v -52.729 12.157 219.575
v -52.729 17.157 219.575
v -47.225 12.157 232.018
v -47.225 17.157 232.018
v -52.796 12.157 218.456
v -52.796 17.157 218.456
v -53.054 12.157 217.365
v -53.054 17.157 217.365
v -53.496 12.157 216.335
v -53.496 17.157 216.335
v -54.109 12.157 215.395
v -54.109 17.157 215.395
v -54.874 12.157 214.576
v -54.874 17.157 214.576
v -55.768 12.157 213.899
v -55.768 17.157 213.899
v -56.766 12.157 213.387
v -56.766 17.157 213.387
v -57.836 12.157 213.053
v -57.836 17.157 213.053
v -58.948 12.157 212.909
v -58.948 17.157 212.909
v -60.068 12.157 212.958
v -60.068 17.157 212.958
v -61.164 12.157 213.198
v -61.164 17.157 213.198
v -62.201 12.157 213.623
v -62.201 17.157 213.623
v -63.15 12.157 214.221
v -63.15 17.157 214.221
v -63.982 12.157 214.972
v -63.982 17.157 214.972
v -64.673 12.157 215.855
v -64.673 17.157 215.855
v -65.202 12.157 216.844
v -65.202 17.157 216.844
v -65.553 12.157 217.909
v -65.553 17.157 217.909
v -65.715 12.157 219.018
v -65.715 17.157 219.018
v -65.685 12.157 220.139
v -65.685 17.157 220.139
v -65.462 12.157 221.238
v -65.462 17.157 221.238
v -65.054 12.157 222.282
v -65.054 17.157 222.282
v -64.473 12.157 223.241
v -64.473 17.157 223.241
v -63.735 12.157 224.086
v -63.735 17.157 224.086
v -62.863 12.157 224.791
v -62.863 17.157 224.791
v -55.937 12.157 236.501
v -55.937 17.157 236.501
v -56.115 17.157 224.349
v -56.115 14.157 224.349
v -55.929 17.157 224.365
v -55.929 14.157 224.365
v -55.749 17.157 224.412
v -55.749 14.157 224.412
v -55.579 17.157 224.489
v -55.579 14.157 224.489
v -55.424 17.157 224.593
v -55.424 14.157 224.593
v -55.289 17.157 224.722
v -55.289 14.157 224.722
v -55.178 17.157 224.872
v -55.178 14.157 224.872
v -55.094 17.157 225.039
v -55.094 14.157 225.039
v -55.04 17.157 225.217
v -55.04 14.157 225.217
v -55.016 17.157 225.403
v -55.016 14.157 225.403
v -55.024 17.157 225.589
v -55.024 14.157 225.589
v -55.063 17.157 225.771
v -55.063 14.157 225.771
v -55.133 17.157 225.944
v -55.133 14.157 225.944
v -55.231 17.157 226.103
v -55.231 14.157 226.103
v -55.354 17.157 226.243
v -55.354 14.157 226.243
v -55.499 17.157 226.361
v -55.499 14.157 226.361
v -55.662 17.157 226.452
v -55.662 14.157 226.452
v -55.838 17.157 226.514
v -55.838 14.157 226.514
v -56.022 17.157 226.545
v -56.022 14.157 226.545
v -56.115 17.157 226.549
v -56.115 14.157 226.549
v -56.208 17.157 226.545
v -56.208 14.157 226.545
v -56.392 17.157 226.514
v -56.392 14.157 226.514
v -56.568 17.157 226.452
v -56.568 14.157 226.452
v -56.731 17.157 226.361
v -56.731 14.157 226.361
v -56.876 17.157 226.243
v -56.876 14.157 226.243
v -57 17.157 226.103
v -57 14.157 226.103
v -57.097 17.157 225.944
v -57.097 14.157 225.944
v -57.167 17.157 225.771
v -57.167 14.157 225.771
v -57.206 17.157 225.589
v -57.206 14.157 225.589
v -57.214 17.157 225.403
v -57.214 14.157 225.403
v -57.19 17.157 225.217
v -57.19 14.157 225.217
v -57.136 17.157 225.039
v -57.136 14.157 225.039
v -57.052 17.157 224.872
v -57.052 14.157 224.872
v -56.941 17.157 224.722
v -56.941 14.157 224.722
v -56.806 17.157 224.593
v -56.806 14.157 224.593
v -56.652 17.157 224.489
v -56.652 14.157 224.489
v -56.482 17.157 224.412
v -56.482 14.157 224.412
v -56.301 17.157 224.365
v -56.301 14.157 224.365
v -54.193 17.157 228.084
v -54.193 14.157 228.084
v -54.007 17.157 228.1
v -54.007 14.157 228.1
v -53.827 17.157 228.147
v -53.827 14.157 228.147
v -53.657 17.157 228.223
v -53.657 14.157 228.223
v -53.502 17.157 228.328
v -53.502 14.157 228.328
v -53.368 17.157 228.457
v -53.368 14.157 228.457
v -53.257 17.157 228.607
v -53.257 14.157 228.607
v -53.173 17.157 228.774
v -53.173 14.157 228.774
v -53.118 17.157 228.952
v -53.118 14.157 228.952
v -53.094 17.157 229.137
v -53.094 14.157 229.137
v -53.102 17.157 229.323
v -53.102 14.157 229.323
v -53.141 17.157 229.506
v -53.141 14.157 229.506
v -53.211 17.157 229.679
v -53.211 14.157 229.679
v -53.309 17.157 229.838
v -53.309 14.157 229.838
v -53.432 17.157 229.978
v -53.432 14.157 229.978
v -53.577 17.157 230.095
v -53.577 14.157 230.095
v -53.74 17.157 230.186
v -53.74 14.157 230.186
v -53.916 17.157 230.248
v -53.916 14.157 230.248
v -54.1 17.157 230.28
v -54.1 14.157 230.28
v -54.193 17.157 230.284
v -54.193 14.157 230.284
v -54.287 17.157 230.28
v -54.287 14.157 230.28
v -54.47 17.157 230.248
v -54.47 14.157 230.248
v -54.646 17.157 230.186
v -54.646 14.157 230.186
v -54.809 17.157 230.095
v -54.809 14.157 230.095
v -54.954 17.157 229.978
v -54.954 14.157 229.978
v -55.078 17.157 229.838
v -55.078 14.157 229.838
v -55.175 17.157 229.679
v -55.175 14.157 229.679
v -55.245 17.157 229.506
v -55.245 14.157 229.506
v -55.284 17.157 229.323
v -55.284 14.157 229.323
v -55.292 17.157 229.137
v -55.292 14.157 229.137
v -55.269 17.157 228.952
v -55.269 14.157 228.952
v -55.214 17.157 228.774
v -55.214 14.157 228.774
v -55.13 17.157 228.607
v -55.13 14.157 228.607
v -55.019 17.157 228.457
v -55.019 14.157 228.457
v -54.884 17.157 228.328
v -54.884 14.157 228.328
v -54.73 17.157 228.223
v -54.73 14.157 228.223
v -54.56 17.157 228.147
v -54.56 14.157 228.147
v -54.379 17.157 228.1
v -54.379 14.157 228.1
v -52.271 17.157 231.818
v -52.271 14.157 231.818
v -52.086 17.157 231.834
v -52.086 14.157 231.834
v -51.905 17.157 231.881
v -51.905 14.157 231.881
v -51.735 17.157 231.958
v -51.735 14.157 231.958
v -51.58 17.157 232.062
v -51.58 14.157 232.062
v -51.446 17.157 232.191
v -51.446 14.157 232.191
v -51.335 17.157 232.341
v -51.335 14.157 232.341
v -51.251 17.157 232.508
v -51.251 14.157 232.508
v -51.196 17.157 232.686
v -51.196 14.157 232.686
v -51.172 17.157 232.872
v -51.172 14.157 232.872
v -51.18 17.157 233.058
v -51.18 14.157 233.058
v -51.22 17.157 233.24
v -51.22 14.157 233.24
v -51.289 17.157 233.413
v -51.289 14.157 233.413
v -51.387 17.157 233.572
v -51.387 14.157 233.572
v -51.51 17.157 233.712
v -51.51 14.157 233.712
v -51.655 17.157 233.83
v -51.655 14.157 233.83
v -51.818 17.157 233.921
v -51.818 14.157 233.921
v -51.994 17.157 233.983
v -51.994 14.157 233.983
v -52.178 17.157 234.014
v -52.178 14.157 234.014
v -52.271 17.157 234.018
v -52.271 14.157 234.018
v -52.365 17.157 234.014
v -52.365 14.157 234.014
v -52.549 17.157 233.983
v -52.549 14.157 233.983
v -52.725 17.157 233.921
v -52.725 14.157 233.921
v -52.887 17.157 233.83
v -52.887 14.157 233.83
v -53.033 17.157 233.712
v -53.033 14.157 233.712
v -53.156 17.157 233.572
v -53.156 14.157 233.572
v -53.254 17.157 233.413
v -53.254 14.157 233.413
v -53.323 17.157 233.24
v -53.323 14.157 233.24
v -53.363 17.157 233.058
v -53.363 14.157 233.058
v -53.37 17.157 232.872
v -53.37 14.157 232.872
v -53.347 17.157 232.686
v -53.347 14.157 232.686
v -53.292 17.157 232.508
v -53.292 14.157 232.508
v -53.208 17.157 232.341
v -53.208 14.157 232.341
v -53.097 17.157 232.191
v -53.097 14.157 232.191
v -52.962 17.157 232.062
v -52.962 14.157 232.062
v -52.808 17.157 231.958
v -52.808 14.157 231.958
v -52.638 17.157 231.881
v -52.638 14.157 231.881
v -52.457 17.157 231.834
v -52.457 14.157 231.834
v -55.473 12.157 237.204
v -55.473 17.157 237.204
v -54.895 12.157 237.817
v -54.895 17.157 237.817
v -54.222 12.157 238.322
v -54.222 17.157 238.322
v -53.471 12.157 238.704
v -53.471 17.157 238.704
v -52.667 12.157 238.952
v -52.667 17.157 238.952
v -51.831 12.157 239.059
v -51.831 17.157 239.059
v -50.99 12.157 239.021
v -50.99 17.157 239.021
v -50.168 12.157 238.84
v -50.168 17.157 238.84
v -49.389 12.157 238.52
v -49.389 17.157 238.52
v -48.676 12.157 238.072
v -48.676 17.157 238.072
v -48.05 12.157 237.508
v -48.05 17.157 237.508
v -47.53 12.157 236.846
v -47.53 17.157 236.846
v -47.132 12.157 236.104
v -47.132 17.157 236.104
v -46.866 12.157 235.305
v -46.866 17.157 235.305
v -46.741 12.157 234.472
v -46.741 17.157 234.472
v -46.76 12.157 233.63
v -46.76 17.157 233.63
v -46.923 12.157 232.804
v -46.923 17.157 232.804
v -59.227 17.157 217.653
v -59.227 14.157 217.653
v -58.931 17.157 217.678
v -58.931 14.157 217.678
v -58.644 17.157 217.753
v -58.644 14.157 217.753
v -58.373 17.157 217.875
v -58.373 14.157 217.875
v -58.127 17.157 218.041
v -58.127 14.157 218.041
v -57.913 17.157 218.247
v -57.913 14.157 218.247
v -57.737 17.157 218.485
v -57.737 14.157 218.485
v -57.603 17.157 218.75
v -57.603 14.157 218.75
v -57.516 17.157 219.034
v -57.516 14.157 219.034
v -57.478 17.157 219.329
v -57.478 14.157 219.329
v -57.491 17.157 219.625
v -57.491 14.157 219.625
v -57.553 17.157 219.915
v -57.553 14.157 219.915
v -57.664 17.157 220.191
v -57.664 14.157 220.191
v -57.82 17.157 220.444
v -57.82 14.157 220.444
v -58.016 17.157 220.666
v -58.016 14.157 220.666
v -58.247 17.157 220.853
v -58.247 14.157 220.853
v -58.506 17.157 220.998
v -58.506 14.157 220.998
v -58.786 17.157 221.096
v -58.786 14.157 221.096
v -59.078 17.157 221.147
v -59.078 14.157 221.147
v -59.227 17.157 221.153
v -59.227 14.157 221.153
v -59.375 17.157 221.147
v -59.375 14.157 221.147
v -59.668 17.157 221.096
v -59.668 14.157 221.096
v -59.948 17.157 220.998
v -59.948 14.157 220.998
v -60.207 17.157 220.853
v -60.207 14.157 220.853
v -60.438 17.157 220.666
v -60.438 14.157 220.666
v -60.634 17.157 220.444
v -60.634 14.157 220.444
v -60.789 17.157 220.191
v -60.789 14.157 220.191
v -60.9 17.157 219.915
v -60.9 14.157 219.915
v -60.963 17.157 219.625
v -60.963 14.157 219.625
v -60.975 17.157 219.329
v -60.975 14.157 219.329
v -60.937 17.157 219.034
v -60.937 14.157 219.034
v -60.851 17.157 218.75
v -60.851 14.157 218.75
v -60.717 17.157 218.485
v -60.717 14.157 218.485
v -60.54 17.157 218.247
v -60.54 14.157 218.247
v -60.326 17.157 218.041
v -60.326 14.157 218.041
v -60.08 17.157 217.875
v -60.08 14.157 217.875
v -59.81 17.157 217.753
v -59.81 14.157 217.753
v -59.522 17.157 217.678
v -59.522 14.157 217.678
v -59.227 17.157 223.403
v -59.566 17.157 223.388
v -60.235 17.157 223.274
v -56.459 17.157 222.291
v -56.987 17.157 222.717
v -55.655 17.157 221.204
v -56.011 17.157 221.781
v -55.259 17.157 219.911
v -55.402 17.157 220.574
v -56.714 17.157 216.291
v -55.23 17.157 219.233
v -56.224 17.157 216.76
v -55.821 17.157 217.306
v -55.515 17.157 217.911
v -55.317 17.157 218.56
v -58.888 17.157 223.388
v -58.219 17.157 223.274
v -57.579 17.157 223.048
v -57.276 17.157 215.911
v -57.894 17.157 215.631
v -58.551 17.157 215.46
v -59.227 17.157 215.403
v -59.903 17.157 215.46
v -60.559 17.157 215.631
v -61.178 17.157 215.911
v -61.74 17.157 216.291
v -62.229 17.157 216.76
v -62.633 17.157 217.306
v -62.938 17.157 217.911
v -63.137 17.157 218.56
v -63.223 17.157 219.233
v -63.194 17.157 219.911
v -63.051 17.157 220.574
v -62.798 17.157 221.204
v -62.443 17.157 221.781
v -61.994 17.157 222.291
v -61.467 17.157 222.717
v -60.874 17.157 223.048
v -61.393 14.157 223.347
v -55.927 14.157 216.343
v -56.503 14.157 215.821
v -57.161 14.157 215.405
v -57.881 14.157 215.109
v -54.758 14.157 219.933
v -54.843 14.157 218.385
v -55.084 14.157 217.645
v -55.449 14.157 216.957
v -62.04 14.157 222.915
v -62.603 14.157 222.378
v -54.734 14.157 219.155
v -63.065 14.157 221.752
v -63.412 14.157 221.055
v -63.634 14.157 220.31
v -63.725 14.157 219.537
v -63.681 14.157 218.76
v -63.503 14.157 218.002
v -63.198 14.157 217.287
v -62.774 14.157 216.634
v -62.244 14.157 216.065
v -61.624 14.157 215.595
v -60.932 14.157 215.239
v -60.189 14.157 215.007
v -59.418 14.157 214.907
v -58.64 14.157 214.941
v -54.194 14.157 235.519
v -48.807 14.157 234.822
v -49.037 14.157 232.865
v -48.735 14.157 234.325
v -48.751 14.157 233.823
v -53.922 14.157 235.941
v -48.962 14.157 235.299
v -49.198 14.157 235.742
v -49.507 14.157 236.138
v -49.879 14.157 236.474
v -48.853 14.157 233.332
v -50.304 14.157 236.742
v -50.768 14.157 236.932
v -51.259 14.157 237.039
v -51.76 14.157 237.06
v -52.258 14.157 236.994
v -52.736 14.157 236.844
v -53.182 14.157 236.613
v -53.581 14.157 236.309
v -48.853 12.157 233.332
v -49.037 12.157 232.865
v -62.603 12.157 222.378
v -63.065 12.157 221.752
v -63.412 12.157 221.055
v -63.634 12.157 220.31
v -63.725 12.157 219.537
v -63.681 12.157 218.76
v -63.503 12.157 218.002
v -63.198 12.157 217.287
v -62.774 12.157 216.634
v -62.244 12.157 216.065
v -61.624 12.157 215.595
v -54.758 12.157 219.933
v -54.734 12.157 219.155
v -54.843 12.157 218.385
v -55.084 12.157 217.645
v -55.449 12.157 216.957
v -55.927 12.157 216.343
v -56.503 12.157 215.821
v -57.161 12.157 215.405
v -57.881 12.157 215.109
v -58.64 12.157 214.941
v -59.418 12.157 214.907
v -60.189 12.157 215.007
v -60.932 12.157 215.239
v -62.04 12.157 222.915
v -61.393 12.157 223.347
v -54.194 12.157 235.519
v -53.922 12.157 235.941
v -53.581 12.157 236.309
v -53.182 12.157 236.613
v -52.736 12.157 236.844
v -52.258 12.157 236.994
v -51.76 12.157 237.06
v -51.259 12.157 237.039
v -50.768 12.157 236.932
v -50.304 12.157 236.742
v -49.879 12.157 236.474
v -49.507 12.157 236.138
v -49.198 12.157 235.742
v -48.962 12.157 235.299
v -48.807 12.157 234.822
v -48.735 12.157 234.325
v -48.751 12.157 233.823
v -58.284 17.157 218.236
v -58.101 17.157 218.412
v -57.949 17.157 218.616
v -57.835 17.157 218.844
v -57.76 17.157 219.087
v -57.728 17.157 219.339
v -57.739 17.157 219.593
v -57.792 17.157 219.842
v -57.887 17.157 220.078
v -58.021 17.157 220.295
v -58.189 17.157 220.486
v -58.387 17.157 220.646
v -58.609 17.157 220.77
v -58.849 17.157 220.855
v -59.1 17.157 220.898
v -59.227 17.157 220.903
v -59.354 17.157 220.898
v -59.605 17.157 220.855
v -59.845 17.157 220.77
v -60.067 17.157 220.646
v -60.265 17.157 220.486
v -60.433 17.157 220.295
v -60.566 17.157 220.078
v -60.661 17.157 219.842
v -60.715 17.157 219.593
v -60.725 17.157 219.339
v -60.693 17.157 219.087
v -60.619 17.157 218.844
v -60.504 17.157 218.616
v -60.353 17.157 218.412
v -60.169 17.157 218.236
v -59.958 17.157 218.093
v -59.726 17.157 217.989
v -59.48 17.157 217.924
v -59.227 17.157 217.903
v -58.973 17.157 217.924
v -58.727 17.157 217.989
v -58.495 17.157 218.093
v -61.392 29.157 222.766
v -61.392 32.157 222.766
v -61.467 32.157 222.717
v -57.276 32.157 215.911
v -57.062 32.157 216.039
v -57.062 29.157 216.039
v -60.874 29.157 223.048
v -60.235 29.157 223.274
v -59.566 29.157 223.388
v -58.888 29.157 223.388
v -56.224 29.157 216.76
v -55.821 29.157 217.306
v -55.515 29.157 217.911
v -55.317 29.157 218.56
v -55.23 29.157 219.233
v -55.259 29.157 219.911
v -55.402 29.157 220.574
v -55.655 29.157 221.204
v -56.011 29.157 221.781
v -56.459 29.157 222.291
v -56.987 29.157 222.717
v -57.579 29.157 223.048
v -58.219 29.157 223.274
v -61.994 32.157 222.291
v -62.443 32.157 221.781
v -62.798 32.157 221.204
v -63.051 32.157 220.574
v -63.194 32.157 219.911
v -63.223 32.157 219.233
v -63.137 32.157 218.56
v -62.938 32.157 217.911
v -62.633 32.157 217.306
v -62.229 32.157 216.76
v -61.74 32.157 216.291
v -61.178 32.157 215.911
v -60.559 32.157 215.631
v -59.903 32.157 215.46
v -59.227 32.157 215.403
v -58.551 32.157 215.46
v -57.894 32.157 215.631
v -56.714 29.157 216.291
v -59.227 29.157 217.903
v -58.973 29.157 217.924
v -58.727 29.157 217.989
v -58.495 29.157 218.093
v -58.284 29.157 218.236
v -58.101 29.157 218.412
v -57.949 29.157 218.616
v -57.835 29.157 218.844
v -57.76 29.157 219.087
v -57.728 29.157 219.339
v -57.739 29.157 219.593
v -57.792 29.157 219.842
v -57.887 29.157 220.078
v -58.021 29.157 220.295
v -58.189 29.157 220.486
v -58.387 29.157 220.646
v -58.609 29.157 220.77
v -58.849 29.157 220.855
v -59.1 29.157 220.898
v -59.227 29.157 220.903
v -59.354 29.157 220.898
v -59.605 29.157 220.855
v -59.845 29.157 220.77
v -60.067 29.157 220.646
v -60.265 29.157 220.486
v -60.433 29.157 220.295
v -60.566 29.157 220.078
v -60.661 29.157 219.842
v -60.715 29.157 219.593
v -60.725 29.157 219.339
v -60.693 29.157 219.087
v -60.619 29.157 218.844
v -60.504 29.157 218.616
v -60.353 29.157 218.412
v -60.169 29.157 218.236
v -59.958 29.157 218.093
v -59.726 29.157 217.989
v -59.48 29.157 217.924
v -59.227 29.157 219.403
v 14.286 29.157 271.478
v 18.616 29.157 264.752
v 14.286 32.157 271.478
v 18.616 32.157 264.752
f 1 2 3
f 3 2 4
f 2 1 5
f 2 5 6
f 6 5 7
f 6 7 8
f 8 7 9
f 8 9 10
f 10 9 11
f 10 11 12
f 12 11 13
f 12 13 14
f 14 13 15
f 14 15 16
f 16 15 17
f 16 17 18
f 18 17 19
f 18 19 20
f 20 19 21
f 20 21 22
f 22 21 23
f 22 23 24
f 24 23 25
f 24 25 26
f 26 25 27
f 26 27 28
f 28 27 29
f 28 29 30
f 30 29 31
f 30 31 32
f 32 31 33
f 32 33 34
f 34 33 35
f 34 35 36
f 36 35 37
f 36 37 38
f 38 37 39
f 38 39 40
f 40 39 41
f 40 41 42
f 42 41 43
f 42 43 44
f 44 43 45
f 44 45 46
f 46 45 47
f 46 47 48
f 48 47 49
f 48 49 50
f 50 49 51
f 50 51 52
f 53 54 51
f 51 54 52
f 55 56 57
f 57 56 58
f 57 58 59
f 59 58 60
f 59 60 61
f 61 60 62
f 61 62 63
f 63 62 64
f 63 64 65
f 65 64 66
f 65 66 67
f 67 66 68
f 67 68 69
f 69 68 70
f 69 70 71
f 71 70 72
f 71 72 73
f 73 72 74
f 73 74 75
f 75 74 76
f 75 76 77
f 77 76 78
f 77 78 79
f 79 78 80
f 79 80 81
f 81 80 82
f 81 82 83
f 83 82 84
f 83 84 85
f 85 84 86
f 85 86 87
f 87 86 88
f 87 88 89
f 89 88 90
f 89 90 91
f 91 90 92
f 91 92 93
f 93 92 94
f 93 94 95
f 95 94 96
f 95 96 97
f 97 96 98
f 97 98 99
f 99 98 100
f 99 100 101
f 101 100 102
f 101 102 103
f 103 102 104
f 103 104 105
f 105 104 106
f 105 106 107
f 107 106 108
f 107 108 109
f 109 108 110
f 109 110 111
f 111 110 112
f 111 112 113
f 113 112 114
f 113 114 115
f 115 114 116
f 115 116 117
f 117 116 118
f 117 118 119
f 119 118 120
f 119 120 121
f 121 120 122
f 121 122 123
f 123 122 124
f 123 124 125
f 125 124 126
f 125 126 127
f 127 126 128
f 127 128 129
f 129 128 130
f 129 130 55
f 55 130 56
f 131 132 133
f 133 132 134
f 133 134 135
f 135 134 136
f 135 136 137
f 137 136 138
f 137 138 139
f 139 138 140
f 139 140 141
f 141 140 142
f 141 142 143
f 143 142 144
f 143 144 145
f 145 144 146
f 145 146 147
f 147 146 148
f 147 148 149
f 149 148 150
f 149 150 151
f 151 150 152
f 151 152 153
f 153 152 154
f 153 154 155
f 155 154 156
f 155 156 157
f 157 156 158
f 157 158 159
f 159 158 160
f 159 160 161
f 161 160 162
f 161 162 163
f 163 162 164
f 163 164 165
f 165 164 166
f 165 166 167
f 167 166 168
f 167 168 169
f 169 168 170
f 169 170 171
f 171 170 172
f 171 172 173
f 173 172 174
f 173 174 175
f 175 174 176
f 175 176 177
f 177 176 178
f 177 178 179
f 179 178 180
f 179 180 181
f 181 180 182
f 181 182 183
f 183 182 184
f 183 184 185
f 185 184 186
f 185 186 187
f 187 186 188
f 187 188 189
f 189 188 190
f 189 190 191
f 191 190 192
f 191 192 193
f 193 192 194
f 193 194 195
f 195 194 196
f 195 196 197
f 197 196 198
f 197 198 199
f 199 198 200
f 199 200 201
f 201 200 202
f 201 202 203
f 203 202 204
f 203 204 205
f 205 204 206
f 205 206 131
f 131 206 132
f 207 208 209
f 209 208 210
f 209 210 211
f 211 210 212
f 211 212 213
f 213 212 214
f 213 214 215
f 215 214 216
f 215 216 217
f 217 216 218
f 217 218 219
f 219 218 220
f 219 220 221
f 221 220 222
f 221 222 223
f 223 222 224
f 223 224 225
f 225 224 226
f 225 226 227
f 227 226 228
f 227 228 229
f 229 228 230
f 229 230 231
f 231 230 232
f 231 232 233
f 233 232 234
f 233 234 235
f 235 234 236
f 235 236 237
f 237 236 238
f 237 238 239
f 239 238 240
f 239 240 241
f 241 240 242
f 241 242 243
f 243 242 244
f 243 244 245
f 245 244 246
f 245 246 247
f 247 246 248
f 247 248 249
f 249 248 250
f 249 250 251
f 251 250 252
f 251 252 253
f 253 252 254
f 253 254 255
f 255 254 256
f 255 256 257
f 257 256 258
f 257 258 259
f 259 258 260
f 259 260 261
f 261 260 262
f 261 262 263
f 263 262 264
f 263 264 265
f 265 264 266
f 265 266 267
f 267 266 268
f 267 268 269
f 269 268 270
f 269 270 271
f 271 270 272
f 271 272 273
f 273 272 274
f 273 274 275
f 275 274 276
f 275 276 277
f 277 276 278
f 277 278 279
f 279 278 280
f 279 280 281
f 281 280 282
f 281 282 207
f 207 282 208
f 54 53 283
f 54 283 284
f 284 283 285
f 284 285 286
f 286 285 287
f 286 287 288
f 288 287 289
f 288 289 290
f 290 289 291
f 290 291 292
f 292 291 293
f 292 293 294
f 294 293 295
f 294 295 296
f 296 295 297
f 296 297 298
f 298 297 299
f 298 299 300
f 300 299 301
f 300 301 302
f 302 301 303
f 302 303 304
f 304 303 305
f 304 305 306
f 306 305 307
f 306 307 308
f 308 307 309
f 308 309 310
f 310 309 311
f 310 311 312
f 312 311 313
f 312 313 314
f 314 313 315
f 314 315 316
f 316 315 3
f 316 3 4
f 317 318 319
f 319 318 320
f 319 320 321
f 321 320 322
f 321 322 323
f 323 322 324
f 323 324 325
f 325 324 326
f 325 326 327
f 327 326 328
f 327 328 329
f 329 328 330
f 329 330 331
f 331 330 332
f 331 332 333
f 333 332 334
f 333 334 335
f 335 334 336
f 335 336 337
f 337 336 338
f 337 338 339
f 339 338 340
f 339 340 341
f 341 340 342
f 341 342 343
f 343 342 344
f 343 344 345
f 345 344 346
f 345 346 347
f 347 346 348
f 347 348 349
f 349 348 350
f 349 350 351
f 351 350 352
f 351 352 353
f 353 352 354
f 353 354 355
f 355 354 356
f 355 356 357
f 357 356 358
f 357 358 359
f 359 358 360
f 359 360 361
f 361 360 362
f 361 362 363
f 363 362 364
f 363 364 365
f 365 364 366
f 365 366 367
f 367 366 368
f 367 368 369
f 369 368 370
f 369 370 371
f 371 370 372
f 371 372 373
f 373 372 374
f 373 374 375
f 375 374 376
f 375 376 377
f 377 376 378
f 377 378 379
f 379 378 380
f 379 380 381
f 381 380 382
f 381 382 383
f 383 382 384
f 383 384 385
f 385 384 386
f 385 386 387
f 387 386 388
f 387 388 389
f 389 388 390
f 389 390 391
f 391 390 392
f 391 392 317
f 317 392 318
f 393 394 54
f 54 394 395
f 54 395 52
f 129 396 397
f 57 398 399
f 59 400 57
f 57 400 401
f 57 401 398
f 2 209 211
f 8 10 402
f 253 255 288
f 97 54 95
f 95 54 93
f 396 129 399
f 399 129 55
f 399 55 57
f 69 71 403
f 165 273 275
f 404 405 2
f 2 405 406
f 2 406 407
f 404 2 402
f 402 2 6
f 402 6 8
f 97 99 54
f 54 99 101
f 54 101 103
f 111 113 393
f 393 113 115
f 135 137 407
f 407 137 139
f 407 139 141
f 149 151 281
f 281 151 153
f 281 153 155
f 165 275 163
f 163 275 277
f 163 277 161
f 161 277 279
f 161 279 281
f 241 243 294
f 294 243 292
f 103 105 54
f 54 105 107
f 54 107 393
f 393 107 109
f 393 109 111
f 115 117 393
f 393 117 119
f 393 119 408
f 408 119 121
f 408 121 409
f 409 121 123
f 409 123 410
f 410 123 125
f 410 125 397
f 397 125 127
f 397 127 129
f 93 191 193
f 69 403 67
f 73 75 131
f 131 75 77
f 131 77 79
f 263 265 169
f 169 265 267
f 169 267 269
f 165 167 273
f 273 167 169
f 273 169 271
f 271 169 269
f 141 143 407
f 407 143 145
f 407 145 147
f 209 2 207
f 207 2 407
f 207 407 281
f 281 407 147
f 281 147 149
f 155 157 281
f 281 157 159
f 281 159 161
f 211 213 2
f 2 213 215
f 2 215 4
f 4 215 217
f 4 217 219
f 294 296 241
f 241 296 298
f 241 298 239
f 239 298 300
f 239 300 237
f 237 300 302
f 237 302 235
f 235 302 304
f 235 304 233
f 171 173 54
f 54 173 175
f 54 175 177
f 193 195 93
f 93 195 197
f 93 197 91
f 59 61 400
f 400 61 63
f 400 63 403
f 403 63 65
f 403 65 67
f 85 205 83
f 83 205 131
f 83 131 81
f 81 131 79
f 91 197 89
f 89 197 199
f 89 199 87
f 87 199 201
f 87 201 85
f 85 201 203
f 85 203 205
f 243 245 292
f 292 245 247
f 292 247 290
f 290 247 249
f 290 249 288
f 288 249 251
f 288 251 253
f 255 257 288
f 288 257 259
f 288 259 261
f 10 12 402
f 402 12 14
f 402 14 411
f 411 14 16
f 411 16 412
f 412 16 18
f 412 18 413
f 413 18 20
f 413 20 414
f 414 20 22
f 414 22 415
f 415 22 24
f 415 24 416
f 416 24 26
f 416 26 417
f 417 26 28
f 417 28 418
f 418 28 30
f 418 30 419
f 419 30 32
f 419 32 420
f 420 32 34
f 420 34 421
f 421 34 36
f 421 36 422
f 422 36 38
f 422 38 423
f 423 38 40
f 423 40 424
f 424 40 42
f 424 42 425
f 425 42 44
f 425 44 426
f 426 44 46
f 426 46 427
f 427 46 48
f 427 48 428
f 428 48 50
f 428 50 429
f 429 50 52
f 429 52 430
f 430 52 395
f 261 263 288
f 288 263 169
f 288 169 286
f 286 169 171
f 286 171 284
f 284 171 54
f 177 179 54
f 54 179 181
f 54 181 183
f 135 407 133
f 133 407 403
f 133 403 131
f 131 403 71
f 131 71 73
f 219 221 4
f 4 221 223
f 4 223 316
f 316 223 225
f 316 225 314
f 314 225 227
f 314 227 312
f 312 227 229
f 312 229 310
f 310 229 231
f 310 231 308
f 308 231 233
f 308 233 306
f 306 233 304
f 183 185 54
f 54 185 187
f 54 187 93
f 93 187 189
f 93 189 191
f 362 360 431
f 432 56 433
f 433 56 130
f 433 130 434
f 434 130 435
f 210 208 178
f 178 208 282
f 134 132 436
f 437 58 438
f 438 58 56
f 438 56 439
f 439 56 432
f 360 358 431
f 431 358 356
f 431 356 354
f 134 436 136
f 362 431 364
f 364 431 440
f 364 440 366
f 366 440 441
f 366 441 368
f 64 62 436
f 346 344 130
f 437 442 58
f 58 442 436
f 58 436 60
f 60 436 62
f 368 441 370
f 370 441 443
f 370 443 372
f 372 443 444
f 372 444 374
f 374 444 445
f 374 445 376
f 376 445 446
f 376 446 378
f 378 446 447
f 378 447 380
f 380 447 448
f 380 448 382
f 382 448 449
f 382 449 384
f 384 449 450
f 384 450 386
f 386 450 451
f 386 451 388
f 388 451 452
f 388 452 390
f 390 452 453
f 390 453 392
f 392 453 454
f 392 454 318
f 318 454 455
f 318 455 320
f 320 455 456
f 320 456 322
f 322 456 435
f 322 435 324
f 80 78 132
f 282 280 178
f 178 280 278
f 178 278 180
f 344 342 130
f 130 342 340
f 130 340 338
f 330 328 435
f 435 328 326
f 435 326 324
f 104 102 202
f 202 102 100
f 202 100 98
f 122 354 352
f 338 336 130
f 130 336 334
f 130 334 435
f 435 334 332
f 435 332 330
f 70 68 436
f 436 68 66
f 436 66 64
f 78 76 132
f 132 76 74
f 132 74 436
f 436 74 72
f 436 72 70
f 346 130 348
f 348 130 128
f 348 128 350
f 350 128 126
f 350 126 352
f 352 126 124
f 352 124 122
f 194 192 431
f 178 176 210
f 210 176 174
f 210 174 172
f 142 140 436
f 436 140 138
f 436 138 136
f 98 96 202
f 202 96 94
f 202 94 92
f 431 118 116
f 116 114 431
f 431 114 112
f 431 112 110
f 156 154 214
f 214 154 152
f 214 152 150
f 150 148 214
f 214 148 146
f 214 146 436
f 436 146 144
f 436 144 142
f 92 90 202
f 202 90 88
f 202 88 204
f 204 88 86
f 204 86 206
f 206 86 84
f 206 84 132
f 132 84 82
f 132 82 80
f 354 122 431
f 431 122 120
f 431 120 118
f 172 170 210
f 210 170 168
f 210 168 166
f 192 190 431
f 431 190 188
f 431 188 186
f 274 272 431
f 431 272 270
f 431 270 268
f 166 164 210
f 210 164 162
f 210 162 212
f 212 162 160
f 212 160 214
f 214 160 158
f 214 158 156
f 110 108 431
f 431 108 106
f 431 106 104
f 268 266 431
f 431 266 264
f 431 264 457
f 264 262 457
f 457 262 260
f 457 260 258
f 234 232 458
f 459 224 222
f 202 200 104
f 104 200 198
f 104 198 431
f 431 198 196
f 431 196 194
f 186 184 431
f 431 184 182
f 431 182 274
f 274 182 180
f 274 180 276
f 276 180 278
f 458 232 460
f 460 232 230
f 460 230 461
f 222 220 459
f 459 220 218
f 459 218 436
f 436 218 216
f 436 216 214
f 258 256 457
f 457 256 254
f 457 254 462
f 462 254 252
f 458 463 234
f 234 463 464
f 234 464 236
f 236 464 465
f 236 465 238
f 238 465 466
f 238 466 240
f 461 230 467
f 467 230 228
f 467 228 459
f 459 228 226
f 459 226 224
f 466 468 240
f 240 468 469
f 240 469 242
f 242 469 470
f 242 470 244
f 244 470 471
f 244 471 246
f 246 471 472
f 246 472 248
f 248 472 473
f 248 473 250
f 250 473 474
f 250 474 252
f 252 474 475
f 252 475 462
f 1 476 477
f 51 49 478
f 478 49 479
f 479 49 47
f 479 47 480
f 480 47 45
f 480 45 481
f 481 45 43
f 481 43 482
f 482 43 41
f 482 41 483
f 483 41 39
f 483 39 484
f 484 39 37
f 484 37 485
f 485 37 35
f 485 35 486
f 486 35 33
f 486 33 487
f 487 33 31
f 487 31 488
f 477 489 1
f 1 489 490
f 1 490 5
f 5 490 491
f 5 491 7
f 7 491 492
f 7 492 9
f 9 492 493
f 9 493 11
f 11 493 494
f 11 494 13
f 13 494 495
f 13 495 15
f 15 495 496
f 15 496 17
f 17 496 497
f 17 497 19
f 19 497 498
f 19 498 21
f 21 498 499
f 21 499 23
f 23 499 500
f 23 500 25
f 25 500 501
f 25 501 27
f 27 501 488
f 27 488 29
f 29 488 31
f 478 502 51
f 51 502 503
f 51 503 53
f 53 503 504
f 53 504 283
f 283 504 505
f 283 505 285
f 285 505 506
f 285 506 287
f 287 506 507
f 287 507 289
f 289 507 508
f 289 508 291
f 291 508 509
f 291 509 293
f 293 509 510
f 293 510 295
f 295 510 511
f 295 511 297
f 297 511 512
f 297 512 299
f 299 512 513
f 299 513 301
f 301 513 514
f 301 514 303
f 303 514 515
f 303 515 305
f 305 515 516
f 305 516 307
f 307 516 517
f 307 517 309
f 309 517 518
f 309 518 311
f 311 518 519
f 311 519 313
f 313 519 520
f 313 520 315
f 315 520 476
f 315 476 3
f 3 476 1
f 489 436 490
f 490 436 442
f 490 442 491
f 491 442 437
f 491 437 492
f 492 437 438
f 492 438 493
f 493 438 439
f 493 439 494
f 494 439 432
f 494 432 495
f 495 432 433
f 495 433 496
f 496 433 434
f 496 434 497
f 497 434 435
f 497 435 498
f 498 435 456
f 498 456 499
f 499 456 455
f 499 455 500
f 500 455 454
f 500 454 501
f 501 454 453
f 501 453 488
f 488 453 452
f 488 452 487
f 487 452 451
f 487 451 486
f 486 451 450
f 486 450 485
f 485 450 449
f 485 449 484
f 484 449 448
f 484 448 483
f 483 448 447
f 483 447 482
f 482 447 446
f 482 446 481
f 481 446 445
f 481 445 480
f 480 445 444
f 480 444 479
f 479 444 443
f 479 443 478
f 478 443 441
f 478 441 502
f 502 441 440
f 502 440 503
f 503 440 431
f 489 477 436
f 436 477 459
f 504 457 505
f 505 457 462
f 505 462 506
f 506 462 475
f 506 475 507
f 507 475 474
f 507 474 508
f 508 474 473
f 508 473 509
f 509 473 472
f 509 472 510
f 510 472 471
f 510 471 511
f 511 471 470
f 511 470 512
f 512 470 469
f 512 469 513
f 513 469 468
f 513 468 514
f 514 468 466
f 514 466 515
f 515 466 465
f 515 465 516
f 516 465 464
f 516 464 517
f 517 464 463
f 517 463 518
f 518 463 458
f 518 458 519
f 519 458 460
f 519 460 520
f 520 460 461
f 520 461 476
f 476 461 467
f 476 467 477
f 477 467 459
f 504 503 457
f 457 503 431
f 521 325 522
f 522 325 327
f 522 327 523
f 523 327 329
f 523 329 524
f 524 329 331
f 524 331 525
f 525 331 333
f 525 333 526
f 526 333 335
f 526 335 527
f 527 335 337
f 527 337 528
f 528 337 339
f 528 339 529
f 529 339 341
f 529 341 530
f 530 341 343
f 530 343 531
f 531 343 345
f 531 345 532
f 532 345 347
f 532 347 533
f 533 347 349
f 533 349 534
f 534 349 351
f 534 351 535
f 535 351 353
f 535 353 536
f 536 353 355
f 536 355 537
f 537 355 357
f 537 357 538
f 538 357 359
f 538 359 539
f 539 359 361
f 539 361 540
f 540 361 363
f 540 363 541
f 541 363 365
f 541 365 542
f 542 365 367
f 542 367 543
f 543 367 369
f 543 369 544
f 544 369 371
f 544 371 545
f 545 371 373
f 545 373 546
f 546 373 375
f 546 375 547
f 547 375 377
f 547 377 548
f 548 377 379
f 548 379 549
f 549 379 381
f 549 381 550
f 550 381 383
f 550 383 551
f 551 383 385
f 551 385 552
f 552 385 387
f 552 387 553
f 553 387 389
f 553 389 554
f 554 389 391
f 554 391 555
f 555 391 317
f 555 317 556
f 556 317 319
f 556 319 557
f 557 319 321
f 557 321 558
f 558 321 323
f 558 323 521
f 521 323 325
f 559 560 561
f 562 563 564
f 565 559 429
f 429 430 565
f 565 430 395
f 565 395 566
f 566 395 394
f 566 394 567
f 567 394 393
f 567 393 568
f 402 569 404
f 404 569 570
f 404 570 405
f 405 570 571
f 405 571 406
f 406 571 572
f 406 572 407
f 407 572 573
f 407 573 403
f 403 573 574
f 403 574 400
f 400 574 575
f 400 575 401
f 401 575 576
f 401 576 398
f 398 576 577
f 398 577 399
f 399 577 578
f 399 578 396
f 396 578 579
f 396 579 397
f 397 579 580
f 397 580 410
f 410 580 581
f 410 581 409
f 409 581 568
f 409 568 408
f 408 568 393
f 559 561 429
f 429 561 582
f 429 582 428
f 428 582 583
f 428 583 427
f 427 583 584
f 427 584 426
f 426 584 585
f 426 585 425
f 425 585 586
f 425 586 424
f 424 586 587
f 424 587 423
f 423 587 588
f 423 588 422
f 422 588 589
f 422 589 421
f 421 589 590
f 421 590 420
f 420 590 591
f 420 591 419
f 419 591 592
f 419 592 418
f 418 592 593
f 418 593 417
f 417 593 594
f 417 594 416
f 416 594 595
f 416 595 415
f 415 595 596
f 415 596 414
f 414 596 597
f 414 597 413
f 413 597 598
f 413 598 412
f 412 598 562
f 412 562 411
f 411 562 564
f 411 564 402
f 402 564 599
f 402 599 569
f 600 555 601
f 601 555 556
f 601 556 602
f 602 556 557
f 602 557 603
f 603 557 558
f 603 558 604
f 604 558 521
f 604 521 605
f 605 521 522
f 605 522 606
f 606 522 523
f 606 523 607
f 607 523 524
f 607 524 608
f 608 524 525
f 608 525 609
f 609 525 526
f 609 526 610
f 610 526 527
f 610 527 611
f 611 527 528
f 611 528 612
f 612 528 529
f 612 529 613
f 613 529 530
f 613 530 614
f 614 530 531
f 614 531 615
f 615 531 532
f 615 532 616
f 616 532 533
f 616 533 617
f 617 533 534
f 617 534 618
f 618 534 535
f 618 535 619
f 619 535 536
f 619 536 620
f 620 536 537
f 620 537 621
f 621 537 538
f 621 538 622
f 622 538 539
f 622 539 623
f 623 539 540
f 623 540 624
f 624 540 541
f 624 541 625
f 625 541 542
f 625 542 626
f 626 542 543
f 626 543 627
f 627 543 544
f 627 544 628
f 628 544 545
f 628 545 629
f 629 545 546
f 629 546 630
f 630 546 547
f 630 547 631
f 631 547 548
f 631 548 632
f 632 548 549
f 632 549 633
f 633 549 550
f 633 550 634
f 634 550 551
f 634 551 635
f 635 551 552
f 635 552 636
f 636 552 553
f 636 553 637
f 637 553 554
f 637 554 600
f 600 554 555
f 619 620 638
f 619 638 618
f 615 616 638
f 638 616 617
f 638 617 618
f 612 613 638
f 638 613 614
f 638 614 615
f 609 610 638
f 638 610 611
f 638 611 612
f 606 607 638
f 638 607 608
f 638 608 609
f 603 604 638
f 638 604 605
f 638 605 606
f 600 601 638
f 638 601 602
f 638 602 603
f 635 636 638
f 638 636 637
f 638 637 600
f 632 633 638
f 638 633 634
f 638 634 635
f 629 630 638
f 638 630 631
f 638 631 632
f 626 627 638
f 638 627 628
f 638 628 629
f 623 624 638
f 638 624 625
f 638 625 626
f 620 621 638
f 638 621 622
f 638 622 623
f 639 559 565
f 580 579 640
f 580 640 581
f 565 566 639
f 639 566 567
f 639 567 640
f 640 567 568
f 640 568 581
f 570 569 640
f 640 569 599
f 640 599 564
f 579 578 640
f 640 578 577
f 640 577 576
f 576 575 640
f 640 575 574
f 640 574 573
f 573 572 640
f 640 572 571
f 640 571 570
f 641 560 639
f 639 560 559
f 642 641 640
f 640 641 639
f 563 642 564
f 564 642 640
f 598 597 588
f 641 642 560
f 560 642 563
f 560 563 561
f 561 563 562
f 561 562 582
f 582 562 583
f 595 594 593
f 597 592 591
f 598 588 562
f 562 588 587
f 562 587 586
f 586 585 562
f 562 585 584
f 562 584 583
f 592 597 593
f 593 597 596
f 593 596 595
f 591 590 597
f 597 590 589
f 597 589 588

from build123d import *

# Parameters (mm, degrees)
EXTRUDE_4_OUTLINE_R   = 1.1
EXTRUDE_4_OUTLINE_R_2 = 1.75
EXTRUDE_4_DEPTH       = 3
EXTRUDE_START         = 2
EXTRUDE_5_DEPTH       = 2
SKETCH_3_R            = 4
SKETCH_3_R_2          = 1.5
EXTRUDE_6_DEPTH       = 12
EXTRUDE_7_DEPTH       = 3


# Read off the part's stored shape, not the designer's step: 填料-伸長4
with BuildPart() as part:
    # 填料-伸長4 outline → 填料-伸長4 (new body)
    with BuildSketch(Plane(origin=(0, 14.156954032, 0), x_dir=(1, 0, 0), z_dir=(0, 1, 0))):
        with BuildLine():
            Line((-47.225195315, -232.018106976), (-52.72903426, -219.575471046))
            ThreePointArc((-52.72903426, -219.575471046), (-62.201062568, -213.623339578), (-62.862967802, -224.790661134))
            Line((-62.862967802, -224.790661134), (-55.936861757, -236.501360817))
            ThreePointArc((-55.936861757, -236.501360817), (-49.388610218, -238.519947074), (-47.225195315, -232.018106976))
        make_face()
        with Locations((-52.271411996, -232.918210387)):
            Circle(EXTRUDE_4_OUTLINE_R, mode=Mode.SUBTRACT)
        with Locations((-54.193279849, -229.183719263)):
            Circle(EXTRUDE_4_OUTLINE_R, mode=Mode.SUBTRACT)
        with Locations((-59.226743272, -219.402909175)):
            Circle(EXTRUDE_4_OUTLINE_R_2, mode=Mode.SUBTRACT)
        with Locations((-56.115147701, -225.449228139)):
            Circle(EXTRUDE_4_OUTLINE_R, mode=Mode.SUBTRACT)
    extrude(amount=EXTRUDE_4_DEPTH)

    # 草圖2 → 填料-伸長5 (add)
    with BuildSketch(Plane.XZ.offset(-14.156954032).offset(EXTRUDE_START)):
        with BuildLine():
            Line((-52.72903426, 219.575471046), (-47.225195315, 232.018106976))
            ThreePointArc((-47.225195315, 232.018106976), (-49.388610218, 238.519947074), (-55.936861757, 236.501360817))
            Line((-55.936861757, 236.501360817), (-62.862967802, 224.790661134))
            ThreePointArc((-62.862967802, 224.790661134), (-62.201062567, 213.623339578), (-52.72903426, 219.575471046))
        make_face()
        with BuildLine():
            Line((-54.758018868, 219.932533757), (-49.037497118, 232.865028725))
            ThreePointArc((-49.037497118, 232.865028725), (-50.303785386, 236.741617967), (-54.194327422, 235.518869919))
            Line((-54.194327422, 235.518869919), (-61.393110067, 223.347127084))
            ThreePointArc((-61.393110067, 223.347127084), (-61.2858874, 215.401668685), (-54.758018868, 219.932533757))
        make_face(mode=Mode.SUBTRACT)
    extrude(amount=-EXTRUDE_5_DEPTH)

    # 草圖3 → 填料-伸長6 (add)
    with BuildSketch(Plane(origin=(0, 17.156954032, 0), x_dir=(1, 0, 0), z_dir=(0, 1, 0))):
        with Locations(Location((-59.226743272, -219.402909175, 0), (0, 0, 270))):
            Circle(SKETCH_3_R)
        with Locations(Location((-59.226743272, -219.402909175, 0), (0, 0, 270))):
            Circle(SKETCH_3_R_2, mode=Mode.SUBTRACT)
    extrude(amount=EXTRUDE_6_DEPTH)

    # 草圖4 → 填料-伸長7 (add)
    with BuildSketch(Plane(origin=(0, 29.156954032, 0), x_dir=(1, 0, 0), z_dir=(0, 1, 0))):
        with BuildLine():
            Line((-57.061762074, -216.03945018), (18.616065321, -264.75152713))
            Line((18.616065321, -264.75152713), (14.286102925, -271.478445121))
            Line((14.286102925, -271.478445121), (-61.39172447, -222.766368171))
            ThreePointArc((-61.39172447, -222.766368171), (-62.590202267, -217.237927978), (-57.061762074, -216.03945018))
        make_face()
    extrude(amount=EXTRUDE_7_DEPTH)


solid = part.part
